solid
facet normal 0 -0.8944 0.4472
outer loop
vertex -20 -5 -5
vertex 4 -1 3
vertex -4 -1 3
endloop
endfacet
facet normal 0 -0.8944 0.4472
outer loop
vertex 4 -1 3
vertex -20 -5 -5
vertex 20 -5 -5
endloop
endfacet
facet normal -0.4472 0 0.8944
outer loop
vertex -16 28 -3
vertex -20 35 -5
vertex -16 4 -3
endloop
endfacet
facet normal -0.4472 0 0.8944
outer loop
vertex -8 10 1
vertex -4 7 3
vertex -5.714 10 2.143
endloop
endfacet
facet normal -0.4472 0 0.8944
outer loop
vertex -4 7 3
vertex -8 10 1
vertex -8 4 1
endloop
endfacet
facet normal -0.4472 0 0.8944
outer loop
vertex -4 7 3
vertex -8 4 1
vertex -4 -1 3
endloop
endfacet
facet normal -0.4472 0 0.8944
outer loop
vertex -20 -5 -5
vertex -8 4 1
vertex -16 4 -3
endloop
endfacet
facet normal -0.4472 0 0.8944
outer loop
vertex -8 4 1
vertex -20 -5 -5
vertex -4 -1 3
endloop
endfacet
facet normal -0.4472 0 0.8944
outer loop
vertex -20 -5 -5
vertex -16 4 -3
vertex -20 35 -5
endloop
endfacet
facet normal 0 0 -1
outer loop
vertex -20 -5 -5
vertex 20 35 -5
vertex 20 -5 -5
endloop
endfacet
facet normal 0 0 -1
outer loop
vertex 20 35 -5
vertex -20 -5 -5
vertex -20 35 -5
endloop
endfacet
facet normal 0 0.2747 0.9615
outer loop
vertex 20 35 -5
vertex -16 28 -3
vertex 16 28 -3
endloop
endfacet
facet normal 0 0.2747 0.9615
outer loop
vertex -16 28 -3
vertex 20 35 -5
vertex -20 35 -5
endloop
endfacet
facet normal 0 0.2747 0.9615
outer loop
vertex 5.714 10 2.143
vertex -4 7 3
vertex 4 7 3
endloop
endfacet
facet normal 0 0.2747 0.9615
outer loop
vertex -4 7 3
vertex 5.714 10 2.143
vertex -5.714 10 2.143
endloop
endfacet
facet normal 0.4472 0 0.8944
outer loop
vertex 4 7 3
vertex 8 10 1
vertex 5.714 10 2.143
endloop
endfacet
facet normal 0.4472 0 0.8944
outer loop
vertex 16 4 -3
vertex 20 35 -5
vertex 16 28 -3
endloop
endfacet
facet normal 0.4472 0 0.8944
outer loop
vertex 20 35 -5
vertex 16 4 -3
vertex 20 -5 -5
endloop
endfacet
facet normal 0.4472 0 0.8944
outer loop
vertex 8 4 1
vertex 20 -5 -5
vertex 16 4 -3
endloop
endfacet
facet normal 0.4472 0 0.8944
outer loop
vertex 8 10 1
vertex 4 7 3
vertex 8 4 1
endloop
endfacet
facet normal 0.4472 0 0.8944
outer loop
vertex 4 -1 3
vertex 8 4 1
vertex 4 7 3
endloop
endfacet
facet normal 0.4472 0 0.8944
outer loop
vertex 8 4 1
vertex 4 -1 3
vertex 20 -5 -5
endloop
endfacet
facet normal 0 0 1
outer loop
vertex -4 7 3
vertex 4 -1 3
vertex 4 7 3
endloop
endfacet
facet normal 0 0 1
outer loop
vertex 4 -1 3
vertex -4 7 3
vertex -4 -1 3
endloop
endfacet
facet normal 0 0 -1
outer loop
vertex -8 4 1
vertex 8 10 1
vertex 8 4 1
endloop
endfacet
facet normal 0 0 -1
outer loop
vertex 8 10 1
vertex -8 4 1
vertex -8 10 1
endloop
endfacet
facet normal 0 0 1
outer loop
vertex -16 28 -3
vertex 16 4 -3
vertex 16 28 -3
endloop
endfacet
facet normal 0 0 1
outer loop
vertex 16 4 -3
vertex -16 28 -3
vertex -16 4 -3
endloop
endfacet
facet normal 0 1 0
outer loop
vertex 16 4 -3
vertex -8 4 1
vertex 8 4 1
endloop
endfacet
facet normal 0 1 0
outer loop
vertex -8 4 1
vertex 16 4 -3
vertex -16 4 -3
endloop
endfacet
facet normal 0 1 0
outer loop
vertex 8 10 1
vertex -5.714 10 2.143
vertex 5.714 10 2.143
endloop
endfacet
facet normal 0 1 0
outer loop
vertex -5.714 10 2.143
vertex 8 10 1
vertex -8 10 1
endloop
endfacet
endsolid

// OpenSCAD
width = 40;
height = 40;
full_depth = 10;

difference() {
linear_extrude(height=full_depth, center=true, scale=0)
translate([0, 15])
  square([width, height], center = true);
  
  
translate([0, 0, 8])
cube([width*2, height*2, 10], center = true);

translate([0, height+4, -1.0])
cube([width*2, height*2, 4], center = true);


translate([0, height-10, 3])
cube([width*2, height, 10], center = true);
    
}
